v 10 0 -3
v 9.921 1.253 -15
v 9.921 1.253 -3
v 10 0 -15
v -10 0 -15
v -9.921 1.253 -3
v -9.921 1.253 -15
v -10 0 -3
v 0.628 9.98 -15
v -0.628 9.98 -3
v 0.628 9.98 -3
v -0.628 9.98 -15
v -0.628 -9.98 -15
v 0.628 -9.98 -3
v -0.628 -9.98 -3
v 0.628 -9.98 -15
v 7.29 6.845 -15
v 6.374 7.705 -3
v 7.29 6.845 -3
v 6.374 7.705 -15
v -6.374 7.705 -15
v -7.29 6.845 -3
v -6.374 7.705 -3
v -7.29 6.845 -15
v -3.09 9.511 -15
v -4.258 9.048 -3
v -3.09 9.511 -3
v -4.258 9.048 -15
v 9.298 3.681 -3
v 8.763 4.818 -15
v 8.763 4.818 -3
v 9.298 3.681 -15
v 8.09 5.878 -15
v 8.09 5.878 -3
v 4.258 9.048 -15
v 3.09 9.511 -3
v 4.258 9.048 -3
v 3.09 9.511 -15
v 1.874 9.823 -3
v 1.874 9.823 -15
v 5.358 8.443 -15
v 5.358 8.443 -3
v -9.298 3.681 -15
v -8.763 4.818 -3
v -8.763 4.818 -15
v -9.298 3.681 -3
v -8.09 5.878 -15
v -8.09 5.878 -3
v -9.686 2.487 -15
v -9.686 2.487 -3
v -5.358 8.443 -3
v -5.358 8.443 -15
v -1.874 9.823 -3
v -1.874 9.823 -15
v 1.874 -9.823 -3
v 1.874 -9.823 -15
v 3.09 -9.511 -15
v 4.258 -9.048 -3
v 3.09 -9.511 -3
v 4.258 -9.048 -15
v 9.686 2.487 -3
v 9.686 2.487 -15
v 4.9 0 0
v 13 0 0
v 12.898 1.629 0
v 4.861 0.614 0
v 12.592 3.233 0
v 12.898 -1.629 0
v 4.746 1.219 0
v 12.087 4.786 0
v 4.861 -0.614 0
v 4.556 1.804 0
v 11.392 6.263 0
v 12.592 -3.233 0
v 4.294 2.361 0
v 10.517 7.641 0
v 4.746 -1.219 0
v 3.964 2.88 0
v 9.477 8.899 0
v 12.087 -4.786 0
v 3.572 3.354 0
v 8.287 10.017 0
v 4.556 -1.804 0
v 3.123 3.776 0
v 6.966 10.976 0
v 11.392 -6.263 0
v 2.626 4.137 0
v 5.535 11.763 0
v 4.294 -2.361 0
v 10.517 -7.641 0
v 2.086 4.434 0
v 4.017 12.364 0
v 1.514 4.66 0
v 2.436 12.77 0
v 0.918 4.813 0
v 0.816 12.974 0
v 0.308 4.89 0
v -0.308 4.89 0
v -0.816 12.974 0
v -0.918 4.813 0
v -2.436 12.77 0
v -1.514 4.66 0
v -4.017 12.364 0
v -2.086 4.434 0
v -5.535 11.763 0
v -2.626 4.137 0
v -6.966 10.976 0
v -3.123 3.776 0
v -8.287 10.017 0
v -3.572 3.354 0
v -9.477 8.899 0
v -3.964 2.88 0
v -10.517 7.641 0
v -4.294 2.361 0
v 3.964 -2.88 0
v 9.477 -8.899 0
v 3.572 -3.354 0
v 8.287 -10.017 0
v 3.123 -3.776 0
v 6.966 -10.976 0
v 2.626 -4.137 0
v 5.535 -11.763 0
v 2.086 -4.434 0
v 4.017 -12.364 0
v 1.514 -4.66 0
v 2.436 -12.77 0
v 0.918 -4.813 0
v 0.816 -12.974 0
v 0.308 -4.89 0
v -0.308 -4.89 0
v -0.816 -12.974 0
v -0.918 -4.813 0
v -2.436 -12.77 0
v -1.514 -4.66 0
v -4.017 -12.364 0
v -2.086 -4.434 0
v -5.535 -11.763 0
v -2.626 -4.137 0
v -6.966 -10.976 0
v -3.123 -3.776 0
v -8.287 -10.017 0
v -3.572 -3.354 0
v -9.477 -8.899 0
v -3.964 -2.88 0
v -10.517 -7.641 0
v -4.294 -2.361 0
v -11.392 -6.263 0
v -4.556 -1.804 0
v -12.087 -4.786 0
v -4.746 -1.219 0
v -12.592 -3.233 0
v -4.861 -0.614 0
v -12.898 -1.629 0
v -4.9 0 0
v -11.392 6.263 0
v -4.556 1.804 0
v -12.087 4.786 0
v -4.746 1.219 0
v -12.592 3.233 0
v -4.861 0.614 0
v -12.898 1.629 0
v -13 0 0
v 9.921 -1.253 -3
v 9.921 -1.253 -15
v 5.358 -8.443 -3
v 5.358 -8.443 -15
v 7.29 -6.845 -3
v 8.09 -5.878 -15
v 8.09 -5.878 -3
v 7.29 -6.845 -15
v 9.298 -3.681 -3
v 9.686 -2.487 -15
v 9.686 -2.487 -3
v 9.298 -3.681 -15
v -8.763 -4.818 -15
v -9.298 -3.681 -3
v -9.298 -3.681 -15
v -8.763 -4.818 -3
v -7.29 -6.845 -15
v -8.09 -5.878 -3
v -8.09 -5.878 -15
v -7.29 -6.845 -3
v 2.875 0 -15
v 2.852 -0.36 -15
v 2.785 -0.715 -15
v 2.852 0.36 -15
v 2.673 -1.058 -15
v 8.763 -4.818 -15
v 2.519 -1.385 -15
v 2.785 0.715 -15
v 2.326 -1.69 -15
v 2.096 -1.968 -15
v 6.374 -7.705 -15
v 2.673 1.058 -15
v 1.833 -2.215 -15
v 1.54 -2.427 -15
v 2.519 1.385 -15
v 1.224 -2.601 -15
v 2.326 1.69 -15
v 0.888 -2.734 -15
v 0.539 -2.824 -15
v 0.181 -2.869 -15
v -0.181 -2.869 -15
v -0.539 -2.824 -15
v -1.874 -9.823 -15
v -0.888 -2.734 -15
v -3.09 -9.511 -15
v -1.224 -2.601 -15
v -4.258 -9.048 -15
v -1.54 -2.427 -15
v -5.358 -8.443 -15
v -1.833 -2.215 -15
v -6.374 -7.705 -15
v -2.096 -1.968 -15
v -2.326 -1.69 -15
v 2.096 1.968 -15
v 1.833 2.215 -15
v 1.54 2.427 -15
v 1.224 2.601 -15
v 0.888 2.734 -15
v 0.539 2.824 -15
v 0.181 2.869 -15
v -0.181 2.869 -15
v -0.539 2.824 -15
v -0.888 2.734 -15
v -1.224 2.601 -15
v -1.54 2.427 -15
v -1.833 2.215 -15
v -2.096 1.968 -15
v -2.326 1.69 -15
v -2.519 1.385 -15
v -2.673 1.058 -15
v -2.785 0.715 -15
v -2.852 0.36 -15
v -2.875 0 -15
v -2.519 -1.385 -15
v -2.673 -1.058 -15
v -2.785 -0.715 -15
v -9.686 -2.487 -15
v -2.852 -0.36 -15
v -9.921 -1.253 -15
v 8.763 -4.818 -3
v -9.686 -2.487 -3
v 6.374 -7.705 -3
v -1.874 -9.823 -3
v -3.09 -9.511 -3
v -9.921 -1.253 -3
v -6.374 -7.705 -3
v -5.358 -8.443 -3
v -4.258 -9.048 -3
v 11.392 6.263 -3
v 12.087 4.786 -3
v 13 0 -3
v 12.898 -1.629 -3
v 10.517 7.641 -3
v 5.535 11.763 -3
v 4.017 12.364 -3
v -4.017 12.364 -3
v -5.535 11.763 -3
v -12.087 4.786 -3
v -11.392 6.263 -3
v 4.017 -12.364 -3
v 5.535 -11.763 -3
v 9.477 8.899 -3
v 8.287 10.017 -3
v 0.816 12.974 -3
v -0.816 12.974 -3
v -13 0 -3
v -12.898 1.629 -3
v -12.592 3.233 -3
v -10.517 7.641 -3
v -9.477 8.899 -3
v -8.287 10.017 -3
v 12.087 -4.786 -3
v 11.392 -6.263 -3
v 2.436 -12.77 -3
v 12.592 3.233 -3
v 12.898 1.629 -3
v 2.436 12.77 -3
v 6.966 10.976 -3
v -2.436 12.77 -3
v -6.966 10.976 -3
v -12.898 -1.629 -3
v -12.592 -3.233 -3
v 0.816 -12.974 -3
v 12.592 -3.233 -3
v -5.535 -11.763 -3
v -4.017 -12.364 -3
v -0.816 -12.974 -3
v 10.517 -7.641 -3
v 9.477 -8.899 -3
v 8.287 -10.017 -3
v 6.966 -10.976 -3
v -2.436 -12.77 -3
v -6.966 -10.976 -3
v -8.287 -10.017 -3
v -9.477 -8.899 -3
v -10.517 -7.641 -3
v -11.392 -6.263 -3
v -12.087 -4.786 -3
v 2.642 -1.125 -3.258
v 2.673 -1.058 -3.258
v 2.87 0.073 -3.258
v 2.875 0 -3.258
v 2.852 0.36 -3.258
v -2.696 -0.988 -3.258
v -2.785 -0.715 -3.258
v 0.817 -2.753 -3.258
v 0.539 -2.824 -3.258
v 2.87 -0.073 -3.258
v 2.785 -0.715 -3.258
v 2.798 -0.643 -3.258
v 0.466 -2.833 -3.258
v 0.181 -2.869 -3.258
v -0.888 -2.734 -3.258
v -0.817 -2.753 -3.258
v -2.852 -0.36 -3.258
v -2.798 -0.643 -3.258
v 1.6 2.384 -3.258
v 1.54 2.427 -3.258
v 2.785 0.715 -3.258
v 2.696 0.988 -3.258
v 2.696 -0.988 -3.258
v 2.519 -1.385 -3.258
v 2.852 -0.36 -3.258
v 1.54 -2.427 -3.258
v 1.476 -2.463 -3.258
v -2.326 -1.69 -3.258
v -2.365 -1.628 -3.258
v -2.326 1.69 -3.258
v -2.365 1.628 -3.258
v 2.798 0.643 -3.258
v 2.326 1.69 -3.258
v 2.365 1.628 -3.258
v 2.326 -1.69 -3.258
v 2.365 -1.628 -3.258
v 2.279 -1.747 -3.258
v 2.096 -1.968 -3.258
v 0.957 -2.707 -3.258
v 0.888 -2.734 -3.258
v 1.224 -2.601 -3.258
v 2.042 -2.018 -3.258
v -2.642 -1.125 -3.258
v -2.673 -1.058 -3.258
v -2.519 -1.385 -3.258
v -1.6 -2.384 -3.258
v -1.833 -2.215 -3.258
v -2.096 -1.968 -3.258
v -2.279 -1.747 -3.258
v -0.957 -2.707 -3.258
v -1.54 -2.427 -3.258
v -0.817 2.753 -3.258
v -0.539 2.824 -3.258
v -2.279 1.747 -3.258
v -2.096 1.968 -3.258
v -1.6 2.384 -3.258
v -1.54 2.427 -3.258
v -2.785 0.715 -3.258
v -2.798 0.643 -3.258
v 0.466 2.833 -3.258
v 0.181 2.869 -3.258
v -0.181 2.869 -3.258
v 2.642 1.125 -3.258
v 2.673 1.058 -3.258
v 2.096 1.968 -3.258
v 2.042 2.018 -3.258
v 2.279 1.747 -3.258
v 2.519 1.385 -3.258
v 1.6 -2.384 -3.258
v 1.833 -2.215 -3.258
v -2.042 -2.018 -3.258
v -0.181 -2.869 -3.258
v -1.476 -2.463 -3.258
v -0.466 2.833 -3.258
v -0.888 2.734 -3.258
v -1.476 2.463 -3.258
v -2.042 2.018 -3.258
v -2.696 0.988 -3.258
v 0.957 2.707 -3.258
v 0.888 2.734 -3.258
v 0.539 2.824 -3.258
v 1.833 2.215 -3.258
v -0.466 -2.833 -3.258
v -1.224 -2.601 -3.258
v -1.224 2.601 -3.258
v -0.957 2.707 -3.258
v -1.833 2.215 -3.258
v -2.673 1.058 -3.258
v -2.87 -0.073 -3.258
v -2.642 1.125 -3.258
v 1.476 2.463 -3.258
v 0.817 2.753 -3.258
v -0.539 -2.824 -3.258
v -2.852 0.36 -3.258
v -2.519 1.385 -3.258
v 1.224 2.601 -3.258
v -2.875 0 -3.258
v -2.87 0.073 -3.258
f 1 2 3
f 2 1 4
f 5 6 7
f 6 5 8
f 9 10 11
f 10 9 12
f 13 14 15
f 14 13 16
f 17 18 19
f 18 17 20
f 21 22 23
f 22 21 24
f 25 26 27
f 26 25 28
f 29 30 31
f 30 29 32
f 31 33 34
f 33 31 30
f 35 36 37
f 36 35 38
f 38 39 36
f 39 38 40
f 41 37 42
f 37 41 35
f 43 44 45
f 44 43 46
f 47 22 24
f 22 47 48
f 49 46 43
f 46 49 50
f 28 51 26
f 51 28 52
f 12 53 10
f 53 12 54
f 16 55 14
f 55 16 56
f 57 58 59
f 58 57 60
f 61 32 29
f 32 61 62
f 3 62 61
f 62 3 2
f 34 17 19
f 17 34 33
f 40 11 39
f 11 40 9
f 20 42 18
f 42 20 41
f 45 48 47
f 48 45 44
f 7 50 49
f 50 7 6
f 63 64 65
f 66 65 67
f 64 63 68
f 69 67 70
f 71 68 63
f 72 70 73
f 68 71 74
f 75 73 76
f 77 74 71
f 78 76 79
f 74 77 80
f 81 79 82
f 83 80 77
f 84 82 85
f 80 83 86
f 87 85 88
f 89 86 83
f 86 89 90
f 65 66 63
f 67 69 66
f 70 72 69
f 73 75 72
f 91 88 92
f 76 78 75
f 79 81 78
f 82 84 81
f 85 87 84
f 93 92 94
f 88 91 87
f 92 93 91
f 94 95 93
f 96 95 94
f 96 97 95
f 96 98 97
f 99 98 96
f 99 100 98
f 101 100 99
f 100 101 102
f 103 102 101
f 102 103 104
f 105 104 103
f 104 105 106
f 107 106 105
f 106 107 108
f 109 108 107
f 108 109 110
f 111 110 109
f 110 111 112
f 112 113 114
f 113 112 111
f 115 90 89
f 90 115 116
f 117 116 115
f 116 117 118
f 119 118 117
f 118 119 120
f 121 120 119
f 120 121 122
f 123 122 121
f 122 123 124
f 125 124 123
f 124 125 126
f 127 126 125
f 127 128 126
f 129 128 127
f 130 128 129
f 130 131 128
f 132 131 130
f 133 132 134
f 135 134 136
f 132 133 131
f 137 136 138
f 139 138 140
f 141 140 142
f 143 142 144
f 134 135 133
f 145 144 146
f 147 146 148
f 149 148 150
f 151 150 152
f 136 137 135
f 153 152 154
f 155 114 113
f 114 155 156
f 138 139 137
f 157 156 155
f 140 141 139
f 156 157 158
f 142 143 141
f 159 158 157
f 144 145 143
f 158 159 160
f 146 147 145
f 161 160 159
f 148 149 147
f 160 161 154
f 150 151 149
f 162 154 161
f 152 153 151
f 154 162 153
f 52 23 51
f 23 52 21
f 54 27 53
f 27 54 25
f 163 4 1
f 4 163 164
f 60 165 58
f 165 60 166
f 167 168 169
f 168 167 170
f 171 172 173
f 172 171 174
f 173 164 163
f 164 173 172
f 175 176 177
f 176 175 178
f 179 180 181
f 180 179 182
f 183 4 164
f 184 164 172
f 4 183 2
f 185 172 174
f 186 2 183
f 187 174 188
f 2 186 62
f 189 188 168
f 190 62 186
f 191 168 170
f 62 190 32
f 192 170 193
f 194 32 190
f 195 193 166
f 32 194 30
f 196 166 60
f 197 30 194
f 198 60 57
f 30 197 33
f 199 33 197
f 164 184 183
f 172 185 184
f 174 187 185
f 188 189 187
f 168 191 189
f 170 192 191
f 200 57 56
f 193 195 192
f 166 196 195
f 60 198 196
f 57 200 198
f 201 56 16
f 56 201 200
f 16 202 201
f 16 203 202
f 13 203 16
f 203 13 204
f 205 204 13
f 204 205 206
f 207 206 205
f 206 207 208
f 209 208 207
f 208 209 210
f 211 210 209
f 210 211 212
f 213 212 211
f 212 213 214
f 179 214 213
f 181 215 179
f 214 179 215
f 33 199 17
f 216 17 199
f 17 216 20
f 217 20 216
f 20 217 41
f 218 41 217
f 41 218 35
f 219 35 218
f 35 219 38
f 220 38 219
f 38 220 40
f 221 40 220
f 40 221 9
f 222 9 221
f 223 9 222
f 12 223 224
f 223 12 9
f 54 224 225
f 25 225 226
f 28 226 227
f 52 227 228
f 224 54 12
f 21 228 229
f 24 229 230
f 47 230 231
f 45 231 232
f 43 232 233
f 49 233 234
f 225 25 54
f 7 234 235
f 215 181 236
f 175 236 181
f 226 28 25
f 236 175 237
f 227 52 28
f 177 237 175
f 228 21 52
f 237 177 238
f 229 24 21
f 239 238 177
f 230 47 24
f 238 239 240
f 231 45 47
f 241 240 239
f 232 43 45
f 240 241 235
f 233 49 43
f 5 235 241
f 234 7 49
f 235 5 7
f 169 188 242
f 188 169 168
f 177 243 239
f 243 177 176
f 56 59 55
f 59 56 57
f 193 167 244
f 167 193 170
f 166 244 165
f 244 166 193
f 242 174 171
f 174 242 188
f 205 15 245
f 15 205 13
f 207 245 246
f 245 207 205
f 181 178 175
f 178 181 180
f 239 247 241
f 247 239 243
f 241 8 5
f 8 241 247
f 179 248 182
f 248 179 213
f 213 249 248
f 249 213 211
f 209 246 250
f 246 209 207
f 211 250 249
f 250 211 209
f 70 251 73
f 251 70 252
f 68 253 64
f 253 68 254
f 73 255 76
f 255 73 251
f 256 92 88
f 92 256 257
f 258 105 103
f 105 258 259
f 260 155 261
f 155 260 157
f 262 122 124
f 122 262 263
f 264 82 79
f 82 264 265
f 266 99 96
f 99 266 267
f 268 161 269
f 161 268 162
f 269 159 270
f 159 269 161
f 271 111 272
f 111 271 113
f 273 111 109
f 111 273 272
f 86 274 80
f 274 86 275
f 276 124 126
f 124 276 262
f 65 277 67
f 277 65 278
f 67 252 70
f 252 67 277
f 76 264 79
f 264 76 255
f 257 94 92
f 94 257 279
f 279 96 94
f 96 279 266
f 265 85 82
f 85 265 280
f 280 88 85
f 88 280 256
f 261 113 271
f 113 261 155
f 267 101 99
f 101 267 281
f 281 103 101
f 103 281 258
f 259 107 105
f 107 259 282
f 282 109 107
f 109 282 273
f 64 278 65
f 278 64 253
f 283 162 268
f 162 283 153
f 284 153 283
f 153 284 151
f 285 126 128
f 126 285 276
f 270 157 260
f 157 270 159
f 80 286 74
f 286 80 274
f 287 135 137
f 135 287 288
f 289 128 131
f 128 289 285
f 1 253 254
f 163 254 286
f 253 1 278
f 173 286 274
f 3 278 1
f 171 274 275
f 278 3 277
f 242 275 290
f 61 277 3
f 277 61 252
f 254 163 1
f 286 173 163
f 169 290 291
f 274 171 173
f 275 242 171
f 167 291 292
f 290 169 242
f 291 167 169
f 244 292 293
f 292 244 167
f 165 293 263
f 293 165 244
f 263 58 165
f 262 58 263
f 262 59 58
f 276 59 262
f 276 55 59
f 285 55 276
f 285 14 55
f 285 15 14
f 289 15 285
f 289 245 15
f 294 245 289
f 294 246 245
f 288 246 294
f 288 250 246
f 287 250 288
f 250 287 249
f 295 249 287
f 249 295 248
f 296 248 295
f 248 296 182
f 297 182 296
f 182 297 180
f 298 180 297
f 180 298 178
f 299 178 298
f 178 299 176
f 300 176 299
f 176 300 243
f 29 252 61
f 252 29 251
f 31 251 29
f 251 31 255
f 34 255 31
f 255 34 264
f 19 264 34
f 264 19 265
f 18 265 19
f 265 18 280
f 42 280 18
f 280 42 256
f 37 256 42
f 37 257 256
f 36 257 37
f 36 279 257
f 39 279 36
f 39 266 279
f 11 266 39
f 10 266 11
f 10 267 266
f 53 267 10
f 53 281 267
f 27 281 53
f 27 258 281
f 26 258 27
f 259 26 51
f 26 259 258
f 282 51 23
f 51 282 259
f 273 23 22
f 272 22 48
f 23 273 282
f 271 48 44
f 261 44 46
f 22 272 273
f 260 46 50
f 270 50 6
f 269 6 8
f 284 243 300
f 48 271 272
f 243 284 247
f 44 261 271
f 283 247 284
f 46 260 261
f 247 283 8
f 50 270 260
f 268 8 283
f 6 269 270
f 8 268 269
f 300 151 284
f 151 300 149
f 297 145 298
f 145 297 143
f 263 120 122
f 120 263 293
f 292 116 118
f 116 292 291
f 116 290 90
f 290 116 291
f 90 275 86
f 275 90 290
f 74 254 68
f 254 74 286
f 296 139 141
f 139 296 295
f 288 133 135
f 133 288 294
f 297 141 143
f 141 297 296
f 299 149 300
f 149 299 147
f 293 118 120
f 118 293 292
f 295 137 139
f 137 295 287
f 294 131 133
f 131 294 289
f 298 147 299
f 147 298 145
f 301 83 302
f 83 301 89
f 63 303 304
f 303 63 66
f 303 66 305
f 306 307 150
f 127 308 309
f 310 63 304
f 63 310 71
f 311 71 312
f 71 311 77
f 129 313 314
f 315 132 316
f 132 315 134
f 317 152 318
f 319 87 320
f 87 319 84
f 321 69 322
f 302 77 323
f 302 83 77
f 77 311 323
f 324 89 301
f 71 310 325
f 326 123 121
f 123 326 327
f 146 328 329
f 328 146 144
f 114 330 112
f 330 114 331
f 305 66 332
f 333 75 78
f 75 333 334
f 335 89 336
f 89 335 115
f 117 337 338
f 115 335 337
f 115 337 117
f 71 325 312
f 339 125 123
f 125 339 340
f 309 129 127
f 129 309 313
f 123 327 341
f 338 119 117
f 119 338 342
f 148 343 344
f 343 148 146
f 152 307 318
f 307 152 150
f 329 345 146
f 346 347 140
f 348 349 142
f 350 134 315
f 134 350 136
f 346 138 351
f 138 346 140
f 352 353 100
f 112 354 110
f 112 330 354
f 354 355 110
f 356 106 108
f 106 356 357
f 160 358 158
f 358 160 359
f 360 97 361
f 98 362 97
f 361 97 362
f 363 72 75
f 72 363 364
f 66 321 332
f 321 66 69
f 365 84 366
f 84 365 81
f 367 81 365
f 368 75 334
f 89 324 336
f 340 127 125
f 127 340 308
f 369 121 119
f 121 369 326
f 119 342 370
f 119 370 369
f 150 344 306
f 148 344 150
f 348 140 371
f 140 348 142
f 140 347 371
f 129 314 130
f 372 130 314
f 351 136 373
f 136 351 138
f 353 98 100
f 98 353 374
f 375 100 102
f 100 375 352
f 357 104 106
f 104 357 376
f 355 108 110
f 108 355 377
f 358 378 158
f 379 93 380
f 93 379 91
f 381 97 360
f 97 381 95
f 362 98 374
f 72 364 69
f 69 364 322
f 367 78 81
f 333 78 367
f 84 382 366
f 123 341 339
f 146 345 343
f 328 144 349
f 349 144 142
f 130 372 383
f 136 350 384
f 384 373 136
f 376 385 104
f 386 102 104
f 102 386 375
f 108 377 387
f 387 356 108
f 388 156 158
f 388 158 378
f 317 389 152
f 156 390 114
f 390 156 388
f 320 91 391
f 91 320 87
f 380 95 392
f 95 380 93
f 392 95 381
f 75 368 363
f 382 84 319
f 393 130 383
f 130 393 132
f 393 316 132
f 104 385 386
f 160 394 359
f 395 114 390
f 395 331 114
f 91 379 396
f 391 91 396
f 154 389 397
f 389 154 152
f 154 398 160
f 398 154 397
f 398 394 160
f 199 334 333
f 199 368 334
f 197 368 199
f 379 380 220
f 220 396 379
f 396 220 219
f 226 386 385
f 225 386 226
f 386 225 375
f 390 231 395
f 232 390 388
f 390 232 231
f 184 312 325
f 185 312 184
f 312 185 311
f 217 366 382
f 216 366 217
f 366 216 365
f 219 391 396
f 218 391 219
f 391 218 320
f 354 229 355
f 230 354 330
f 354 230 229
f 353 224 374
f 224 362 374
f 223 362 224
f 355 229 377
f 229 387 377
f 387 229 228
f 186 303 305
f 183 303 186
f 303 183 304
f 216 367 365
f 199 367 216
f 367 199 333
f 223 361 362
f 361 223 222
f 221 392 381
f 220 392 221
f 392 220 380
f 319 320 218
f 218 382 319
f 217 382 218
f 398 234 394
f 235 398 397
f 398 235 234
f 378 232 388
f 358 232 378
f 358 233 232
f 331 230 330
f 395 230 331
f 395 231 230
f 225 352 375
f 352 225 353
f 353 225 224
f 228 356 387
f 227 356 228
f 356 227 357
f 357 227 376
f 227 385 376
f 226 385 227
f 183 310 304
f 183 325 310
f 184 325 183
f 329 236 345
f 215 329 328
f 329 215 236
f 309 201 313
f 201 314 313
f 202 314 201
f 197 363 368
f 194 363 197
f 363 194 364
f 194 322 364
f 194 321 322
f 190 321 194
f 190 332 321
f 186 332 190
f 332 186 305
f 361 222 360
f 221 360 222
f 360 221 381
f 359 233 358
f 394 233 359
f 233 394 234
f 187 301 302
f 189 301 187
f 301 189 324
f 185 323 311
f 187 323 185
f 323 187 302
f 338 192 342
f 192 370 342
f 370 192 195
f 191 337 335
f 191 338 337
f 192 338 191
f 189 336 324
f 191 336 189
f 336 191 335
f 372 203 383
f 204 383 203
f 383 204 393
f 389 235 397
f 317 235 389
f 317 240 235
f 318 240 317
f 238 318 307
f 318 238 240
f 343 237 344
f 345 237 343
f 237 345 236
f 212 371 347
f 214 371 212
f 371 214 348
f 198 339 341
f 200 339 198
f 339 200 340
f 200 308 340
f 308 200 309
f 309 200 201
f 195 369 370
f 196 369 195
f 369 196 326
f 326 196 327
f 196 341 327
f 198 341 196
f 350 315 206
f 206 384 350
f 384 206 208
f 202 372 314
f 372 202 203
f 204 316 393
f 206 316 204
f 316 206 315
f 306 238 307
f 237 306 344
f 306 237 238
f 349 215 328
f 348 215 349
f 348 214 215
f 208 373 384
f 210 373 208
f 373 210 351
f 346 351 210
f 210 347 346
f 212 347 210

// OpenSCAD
$fn = 50;


difference() {
	union() {
		translate(v = [0, 0, -15.0000000000]) {
			cylinder(h = 15, r = 10.0000000000);
		}
		translate(v = [0, 0, -3.0000000000]) {
			cylinder(h = 3, r = 13.0000000000);
		}
	}
	union() {
		translate(v = [0, 0, 0]) {
			rotate(a = [0, 0, 0]) {
				difference() {
					union() {
						translate(v = [0, 0, -3.7000000000]) {
							cylinder(h = 3.7000000000, r = 10.0000000000, r1 = 2.6000000000, r2 = 4.9000000000);
						}
						translate(v = [0, 0, -15.0000000000]) {
							cylinder(h = 15, r = 2.6000000000);
						}
						translate(v = [0, 0, -15.0000000000]) {
							cylinder(h = 15, r = 2.8750000000);
						}
						translate(v = [0, 0, -15.0000000000]) {
							cylinder(h = 15, r = 2.6000000000);
						}
					}
					union();
				}
			}
		}
	}
}
